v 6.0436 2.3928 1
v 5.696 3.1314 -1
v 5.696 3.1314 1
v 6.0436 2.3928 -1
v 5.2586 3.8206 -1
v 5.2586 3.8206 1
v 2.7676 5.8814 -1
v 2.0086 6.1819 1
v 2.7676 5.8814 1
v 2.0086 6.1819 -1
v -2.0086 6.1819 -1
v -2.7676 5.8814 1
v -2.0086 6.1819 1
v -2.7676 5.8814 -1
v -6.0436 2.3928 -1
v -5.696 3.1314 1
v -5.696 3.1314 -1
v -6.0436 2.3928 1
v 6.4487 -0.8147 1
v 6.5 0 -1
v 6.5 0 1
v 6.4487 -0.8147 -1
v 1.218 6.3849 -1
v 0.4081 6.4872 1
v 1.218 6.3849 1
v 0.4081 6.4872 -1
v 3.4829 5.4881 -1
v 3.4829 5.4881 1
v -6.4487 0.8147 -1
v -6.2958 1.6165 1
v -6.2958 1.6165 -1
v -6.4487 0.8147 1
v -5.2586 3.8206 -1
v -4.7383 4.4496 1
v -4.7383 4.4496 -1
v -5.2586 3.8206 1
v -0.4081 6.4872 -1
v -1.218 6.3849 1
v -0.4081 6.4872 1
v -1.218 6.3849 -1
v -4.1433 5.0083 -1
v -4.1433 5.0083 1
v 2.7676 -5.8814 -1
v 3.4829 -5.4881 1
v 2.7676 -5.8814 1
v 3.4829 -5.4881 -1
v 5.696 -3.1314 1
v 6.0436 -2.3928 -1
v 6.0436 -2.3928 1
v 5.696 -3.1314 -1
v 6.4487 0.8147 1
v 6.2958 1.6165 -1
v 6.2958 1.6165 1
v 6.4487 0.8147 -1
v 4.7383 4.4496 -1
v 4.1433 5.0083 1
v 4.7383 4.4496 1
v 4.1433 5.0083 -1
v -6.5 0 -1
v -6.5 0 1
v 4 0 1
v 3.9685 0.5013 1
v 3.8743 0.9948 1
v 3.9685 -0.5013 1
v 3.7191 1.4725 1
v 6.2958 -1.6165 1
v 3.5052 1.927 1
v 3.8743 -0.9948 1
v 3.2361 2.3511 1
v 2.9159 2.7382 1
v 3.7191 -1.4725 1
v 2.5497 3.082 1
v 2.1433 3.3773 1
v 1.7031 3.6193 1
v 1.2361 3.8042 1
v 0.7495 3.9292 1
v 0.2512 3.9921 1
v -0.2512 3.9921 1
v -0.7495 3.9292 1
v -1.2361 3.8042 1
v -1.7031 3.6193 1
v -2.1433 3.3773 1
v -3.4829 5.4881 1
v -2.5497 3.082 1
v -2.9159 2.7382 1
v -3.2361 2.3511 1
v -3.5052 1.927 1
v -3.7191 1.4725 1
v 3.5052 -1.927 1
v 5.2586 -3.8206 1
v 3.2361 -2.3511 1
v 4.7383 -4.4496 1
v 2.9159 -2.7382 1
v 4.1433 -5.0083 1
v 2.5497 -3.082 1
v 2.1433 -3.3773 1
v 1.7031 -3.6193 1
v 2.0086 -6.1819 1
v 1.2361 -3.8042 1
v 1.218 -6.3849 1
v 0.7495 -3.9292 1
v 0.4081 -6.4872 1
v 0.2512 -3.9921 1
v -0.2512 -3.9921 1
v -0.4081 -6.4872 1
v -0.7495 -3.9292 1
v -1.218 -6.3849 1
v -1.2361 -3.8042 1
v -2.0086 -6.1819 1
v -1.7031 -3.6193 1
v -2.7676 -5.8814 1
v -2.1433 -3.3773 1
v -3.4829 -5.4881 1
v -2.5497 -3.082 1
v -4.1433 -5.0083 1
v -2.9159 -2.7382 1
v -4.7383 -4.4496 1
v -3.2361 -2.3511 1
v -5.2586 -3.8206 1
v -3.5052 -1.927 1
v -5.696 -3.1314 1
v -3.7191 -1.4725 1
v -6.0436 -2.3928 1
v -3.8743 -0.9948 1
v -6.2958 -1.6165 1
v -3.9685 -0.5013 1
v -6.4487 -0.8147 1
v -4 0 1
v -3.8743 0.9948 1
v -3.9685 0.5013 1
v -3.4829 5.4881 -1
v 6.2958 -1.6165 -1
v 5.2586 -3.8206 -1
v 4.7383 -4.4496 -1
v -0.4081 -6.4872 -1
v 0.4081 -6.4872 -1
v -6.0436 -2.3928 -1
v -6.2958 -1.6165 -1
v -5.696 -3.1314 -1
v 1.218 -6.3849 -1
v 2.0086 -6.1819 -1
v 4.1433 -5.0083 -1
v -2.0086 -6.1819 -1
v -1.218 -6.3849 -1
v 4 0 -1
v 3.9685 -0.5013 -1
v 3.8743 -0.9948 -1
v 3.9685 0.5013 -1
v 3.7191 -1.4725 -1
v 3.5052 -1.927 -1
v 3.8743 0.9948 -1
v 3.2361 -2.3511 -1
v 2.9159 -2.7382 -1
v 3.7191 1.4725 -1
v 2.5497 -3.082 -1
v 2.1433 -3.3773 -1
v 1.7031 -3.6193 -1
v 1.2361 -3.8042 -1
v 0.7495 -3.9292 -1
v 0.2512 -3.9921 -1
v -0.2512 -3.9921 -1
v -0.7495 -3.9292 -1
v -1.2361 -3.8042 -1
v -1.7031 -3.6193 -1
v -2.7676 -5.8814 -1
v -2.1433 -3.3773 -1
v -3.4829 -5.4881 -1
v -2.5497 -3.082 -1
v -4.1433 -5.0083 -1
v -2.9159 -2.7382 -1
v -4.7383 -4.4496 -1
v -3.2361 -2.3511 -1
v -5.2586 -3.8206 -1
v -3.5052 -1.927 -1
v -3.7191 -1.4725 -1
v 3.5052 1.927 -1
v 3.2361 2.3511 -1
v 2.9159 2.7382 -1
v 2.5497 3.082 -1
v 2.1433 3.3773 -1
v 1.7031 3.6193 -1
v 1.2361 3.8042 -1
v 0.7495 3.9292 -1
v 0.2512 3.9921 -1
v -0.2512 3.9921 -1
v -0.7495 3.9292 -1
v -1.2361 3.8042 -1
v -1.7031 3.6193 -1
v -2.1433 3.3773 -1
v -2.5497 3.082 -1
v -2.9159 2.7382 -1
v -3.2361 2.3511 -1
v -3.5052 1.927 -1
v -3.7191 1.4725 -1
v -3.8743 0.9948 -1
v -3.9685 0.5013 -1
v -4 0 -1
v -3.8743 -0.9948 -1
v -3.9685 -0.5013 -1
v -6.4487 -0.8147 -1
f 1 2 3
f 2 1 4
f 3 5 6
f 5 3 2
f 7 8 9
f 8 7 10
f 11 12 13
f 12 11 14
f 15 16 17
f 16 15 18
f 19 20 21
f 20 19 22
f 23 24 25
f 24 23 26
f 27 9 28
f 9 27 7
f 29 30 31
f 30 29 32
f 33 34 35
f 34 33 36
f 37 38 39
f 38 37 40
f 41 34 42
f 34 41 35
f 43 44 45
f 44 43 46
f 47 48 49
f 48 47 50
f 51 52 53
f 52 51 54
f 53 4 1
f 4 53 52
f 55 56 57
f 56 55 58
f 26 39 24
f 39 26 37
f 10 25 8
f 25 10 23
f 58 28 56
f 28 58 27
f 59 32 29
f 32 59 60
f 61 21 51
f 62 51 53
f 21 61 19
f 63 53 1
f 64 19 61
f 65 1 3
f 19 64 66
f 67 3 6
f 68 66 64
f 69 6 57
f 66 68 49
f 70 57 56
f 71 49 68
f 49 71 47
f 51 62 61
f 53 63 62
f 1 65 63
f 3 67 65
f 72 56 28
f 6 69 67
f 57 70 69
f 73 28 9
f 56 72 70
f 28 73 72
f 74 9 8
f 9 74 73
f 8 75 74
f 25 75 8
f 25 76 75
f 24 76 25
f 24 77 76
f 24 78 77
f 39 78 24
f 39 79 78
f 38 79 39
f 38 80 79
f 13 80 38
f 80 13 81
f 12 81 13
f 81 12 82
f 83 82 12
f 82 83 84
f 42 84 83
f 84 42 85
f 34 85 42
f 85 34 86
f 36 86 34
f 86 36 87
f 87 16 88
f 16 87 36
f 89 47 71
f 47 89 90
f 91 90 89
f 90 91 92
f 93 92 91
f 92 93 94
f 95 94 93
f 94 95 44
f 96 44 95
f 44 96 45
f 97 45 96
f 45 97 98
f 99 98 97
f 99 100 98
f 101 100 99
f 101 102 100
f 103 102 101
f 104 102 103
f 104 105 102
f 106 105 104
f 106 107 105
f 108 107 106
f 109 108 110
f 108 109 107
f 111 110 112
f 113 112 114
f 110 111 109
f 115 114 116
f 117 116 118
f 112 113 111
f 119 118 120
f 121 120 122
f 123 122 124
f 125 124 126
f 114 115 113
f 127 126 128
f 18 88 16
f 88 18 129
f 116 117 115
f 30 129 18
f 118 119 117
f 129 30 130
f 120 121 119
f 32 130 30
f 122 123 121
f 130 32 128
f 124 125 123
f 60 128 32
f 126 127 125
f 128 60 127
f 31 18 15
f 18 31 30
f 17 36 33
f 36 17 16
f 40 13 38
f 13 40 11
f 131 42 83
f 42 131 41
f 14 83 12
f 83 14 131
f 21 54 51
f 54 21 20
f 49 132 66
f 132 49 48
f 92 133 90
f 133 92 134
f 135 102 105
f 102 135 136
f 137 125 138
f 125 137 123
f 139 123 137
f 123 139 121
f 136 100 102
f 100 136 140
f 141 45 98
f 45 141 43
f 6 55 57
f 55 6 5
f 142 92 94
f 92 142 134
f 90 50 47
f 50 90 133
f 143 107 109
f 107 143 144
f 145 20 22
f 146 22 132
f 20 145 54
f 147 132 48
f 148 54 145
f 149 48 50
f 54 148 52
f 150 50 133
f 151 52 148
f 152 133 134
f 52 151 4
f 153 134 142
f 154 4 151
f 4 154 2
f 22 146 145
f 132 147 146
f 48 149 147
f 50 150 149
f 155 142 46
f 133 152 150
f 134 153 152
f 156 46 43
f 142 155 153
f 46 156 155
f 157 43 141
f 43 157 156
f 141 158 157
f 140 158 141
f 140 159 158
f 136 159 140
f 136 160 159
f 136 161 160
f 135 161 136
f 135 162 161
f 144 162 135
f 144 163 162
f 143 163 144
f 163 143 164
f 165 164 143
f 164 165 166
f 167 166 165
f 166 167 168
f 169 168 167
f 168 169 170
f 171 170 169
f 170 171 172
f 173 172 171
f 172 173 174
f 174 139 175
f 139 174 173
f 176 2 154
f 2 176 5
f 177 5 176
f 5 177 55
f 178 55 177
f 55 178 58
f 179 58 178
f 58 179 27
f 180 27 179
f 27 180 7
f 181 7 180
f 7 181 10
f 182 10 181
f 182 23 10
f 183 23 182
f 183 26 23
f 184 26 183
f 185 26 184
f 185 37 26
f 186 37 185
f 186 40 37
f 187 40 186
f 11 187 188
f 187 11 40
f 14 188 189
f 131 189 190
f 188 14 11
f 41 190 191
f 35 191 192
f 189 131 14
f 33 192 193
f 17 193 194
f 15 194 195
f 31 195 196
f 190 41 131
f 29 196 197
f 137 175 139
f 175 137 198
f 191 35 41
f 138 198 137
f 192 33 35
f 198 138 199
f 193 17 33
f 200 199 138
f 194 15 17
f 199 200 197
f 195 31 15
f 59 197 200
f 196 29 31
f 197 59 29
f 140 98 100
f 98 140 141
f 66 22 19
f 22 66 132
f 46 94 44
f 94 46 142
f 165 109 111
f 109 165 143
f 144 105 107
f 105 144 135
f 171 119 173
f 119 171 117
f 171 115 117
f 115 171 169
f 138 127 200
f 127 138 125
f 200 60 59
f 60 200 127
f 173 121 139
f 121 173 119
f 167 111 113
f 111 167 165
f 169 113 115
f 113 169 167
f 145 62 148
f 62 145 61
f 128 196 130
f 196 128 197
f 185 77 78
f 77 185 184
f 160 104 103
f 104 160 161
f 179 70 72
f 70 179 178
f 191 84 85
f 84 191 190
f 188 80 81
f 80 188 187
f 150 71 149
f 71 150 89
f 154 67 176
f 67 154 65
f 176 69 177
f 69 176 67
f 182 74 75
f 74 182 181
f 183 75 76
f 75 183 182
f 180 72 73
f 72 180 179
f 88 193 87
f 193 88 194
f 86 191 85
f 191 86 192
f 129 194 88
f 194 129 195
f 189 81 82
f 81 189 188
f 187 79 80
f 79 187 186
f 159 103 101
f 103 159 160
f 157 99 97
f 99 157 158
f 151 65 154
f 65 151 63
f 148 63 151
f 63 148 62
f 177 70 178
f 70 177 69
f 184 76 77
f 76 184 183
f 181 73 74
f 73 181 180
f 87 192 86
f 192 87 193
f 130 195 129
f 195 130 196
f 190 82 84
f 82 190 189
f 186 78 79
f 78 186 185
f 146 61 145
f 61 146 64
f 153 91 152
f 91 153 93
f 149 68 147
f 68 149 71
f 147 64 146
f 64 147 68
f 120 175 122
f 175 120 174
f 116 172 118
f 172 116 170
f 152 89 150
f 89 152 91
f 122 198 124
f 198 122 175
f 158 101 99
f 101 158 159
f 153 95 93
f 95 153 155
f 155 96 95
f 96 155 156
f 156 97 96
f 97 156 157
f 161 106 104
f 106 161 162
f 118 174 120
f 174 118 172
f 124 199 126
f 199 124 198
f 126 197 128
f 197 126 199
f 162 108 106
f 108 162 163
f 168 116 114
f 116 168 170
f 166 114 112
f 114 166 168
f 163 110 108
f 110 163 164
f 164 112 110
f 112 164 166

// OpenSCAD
$fn = 50;


difference() {
	union() {
		translate(v = [0, 0, -1.0000000000]) {
			cylinder(h = 2, r = 6.5000000000);
		}
	}
	union() {
		translate(v = [0, 0, -100.0000000000]) {
			cylinder(h = 200, r = 4);
		}
	}
}
